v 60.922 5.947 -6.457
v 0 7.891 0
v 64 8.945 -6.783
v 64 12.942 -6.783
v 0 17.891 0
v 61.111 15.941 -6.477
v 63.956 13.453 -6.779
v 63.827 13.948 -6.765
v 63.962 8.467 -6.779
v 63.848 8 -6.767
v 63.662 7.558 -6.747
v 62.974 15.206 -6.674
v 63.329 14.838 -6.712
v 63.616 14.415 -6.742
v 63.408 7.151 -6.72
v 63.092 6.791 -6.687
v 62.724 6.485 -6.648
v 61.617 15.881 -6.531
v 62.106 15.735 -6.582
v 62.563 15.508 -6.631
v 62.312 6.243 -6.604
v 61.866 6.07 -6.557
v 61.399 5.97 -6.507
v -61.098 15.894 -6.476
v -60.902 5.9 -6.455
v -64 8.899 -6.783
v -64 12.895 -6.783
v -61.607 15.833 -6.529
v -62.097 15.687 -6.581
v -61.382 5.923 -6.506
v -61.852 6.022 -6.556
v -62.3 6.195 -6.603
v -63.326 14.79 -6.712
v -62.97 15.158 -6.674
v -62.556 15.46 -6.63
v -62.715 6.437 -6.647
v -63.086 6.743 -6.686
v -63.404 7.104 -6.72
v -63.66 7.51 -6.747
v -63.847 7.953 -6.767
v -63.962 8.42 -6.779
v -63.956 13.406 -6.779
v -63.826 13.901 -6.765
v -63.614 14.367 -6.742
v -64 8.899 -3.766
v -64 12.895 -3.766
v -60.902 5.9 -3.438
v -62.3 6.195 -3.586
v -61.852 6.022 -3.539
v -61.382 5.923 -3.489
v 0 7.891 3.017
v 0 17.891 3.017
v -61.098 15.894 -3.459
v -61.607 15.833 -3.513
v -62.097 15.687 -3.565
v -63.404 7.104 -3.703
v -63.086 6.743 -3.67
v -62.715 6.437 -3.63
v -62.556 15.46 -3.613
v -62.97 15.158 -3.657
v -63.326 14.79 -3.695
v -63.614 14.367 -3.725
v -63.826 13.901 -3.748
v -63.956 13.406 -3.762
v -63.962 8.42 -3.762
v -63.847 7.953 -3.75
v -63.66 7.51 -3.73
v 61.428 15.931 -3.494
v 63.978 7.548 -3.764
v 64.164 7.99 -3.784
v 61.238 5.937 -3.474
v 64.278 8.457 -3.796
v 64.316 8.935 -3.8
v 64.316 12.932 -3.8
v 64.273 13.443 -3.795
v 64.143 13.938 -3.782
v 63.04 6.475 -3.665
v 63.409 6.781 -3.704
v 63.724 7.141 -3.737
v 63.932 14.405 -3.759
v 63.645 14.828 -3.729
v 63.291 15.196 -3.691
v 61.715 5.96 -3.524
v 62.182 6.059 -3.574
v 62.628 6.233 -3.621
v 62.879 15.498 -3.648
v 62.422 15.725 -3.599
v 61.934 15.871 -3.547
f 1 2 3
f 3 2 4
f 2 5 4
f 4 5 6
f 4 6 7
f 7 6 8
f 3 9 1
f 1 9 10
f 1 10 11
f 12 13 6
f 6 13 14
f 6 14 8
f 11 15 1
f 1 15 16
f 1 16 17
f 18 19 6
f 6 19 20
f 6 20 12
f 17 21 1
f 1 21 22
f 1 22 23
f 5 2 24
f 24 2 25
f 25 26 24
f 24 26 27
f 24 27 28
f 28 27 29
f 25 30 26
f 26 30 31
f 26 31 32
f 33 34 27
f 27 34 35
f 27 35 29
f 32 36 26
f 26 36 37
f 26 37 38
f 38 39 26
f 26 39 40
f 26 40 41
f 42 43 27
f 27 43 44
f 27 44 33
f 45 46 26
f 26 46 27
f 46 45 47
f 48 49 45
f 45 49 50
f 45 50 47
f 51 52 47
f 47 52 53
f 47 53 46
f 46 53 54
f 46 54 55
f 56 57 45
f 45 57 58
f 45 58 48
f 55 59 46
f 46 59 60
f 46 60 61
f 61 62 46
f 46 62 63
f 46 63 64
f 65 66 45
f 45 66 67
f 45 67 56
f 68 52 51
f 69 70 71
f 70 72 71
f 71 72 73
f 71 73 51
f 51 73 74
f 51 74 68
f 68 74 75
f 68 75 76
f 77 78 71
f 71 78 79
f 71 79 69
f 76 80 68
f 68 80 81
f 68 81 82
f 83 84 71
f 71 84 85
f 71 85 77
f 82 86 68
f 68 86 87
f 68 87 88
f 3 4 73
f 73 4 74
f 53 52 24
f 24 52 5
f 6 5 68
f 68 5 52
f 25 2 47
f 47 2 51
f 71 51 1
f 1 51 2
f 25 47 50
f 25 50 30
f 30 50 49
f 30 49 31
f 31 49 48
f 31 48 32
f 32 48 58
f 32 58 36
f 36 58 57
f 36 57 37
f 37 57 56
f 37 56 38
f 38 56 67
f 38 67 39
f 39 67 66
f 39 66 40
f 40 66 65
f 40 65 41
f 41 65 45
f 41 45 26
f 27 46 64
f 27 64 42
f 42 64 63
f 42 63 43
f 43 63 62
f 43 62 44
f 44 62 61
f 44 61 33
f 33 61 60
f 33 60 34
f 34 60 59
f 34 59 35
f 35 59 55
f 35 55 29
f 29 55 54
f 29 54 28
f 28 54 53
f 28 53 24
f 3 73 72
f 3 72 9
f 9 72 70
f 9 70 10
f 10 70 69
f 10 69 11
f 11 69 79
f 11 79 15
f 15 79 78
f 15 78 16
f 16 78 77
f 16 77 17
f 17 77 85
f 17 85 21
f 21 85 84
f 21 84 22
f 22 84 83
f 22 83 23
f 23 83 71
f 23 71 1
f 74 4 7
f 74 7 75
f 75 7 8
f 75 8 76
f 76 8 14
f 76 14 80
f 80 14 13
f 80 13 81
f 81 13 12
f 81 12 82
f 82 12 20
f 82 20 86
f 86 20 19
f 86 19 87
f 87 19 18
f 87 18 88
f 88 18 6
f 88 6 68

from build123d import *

# Parameters (mm, degrees)
BOSS_EXTRUDE2_DEPTH     = 20
CUT_EXTRUDE1_DEPTH      = 4.016802691
CUT_EXTRUDE1_DEPTH_BACK = 7.783143762
FILLET1_R               = 3


with BuildPart() as part:
    # Sketch2 → Boss-Extrude2 (new body)
    with BuildSketch(Plane(origin=(0, 0, 0), x_dir=(1, 0, 0), z_dir=(0, 1, 0))):
        Polygon((0, 0), (-64, 6.783143762), (-64, 3.766341072), (0, -3.016802691), (64.316188922, 3.799852867), (64, 6.783143762), align=None)
    extrude(amount=BOSS_EXTRUDE2_DEPTH)

    # Sketch3 → Cut-Extrude1 (cut, two sides)
    with BuildSketch(Plane.XY) as cut_extrude1_sk:
        Polygon((0, 7.890942367), (-64, 5.798881402), (-64, 0), (64.316188922, 0), (64.316188922, 5.838536205), align=None)
        Polygon((-64, 20), (-64, 15.798881402), (0, 17.890942367), (64.316188922, 15.838536205), (64.316188922, 20), align=None)
    extrude(amount=CUT_EXTRUDE1_DEPTH, mode=Mode.SUBTRACT)
    extrude(cut_extrude1_sk.sketch, amount=-CUT_EXTRUDE1_DEPTH_BACK, mode=Mode.SUBTRACT)

    # Fillet1
    fillet1_edges = [part.edges().sort_by_distance(p)[0] for p in [
        (64.158094461, 15.843581188, -5.291498315),
        (64.158094461, 5.843581188, -5.291498315),
        (-64, 5.798881402, -5.274742417),
        (-64, 15.798881402, -5.274742417),
    ]]
    fillet(fillet1_edges, radius=FILLET1_R)


solid = part.part
